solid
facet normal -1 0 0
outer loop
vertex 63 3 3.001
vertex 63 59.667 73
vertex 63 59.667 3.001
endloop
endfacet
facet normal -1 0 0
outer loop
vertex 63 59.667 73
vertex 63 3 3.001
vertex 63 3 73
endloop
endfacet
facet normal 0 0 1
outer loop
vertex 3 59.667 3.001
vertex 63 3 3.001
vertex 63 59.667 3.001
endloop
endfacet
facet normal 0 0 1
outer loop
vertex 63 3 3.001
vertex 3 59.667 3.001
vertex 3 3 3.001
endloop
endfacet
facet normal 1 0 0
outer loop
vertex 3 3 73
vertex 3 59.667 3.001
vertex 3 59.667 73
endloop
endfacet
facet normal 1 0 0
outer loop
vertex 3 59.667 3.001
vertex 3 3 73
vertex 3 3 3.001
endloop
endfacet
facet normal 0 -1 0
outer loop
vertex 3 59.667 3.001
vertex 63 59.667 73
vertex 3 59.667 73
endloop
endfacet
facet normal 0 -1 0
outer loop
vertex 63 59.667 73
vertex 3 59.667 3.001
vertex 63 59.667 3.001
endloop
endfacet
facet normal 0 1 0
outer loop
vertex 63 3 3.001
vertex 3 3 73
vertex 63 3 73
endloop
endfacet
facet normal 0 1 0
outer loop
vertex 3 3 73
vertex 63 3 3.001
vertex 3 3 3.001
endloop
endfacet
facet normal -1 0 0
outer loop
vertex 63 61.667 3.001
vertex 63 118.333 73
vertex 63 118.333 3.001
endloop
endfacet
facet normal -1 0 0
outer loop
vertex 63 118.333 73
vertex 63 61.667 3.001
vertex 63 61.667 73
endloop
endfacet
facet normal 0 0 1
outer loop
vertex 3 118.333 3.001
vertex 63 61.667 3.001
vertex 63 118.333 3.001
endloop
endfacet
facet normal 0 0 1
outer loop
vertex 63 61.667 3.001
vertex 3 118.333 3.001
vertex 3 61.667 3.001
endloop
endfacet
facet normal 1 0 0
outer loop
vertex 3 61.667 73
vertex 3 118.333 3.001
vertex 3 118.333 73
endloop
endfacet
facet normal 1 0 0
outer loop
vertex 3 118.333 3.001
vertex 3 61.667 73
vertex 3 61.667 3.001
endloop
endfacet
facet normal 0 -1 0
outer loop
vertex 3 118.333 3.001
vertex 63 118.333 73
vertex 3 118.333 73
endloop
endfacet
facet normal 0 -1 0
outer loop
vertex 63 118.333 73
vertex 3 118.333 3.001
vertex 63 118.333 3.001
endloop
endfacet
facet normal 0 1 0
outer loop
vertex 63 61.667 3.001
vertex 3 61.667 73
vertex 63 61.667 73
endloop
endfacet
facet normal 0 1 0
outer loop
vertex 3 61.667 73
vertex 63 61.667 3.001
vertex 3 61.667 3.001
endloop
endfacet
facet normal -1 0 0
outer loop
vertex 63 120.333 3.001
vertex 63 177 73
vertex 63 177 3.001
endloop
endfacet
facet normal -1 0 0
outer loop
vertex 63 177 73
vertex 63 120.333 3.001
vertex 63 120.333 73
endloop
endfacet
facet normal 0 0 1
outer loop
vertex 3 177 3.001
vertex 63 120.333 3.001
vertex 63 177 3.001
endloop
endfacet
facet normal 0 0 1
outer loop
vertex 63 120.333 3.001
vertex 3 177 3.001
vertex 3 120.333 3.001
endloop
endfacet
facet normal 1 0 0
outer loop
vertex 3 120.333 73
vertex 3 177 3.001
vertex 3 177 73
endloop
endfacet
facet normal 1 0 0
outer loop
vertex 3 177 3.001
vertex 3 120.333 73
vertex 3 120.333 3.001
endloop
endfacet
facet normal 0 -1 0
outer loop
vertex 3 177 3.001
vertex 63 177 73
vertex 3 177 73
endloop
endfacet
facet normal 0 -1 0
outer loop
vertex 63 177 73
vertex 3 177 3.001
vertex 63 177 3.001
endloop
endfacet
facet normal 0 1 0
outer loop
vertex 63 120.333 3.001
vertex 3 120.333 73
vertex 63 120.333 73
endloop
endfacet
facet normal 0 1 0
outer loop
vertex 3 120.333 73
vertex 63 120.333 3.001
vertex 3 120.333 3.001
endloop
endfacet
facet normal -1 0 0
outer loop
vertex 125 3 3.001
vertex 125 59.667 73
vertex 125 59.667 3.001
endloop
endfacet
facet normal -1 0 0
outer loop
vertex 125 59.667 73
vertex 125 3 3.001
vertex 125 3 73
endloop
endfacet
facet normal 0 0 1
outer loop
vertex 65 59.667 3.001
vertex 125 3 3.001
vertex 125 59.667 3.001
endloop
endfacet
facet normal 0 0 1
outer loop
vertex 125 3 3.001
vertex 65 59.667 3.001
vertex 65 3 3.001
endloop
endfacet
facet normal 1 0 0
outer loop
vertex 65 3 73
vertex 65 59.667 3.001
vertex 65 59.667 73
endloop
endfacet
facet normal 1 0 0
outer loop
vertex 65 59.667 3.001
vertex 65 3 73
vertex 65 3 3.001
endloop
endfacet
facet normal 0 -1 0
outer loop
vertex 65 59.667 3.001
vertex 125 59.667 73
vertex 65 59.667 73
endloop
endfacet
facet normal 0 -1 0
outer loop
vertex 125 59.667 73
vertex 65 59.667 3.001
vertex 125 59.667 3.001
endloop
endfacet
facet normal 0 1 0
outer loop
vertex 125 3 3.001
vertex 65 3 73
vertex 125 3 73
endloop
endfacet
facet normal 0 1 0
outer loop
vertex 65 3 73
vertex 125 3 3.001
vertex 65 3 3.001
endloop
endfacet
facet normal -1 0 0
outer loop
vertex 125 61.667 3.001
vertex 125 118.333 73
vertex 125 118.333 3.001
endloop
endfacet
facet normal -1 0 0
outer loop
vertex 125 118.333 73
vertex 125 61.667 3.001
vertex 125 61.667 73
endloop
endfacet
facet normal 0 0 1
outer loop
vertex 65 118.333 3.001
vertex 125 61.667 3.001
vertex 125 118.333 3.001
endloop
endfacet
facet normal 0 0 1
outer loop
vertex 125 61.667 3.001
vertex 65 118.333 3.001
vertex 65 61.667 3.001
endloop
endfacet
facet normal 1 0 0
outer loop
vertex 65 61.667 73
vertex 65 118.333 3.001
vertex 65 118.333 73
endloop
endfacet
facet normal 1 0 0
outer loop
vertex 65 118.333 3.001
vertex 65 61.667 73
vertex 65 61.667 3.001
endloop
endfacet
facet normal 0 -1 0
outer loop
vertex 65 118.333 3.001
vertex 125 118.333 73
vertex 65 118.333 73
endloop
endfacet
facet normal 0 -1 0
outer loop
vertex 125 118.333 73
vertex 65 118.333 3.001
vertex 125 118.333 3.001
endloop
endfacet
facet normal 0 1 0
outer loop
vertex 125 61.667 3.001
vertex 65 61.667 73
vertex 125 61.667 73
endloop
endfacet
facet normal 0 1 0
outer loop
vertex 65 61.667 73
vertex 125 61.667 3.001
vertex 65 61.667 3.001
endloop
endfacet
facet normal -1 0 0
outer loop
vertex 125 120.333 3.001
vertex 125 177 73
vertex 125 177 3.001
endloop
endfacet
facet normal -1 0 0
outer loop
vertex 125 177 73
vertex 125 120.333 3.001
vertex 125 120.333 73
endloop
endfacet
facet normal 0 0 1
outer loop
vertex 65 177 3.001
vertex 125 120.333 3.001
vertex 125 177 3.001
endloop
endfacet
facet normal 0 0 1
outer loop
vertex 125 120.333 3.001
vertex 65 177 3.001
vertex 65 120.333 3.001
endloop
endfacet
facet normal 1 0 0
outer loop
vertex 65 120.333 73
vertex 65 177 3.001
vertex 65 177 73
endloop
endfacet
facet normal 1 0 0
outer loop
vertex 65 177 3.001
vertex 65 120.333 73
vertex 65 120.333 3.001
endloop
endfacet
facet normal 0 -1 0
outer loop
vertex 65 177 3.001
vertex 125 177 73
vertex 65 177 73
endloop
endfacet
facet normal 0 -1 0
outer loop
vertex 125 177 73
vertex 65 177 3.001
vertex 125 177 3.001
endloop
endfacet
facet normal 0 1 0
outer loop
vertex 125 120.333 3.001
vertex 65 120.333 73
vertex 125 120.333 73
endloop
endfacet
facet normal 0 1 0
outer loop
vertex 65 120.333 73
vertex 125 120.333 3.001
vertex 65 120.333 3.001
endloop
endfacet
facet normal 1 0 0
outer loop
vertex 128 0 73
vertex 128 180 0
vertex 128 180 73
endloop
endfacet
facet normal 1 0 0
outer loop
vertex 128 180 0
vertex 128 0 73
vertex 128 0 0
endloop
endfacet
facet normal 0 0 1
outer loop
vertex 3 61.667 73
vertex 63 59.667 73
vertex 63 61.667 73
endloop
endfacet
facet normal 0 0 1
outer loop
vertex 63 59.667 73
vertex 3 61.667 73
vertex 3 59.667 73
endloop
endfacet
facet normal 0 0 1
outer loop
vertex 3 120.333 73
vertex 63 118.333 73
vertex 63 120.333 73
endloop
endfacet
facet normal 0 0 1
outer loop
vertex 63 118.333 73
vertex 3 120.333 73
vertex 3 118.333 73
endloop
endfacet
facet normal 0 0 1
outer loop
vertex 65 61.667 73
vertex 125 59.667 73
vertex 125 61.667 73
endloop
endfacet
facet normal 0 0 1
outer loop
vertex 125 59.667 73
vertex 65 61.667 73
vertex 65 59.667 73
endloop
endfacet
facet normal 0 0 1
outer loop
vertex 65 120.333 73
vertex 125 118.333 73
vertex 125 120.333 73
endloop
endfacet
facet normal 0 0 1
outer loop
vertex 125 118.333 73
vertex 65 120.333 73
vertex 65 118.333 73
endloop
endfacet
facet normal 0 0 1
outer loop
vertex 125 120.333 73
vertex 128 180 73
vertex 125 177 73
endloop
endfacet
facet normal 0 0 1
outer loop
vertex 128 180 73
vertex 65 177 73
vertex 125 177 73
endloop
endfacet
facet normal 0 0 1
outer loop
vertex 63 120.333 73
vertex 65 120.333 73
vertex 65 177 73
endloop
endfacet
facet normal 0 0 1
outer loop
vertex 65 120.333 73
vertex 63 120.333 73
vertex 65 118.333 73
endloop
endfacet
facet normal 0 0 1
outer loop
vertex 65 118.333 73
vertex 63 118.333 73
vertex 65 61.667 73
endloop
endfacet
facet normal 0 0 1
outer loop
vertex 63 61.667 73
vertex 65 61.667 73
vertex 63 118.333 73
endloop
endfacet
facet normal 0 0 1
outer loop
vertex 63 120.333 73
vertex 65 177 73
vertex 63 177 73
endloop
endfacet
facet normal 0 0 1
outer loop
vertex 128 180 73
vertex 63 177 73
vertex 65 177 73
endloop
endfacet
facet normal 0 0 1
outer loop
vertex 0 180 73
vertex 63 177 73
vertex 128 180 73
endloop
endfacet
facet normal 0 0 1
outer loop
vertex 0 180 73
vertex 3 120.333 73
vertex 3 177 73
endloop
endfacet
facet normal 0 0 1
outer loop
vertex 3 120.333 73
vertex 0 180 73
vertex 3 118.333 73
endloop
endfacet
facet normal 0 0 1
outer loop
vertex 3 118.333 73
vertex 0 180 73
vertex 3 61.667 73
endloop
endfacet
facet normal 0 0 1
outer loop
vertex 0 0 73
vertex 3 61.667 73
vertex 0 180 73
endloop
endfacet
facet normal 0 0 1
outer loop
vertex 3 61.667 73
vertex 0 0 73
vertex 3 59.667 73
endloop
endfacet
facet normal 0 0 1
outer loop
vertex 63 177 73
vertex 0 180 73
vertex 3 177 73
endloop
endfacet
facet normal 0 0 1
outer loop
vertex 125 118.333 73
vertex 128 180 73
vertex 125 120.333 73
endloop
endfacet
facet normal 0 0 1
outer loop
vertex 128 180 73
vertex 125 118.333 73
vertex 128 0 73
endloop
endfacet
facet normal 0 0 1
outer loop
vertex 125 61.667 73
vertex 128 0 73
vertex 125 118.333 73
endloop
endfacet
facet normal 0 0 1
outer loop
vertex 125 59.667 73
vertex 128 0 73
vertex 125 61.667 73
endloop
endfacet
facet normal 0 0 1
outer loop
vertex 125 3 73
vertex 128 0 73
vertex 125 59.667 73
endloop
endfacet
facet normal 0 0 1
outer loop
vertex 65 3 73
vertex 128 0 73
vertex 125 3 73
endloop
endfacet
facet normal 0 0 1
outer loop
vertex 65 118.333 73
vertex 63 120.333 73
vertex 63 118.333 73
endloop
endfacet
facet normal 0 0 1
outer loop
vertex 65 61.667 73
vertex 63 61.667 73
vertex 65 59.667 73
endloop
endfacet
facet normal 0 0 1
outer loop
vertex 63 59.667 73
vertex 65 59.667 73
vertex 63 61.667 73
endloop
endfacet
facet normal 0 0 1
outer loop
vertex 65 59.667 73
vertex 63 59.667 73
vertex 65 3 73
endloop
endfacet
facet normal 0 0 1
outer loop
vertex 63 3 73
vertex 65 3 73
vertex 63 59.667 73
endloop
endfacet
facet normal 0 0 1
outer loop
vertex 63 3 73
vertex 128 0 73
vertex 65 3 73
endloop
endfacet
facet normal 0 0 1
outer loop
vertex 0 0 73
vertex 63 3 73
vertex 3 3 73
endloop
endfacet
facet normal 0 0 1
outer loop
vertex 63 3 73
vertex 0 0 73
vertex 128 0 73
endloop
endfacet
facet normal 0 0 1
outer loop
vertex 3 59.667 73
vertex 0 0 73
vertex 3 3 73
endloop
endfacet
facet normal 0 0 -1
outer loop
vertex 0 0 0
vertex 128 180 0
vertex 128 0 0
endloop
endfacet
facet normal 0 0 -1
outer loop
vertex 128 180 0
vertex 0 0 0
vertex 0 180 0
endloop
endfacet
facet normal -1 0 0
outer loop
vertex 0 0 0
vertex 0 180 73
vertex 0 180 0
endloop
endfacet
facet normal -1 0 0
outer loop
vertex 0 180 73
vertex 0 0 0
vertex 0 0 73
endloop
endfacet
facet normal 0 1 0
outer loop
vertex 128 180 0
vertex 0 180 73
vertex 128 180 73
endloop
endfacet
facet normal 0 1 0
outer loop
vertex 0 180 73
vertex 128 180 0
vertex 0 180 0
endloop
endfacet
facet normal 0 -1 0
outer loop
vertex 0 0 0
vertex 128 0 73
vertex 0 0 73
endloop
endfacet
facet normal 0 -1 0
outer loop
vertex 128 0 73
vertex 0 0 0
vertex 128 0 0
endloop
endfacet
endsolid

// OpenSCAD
tea_bag_width = 57;
tea_bag_height = 65;

bags_hollow_width = tea_bag_width + 3;
bags_hollow_height = tea_bag_height + 5;

border_wall = 3;
inner_wall = 2;

margin = 0.001;

container_depth = 180;
number_of_depth_hollows = 3;
container_width = bags_hollow_width * 2 + border_wall * 2 + inner_wall;
container_height = bags_hollow_height + border_wall;

difference() {
    cube([container_width, container_depth, container_height]);
    
    bags_hollow_depth = (container_depth - border_wall * 2 - inner_wall * (number_of_depth_hollows - 1)) / number_of_depth_hollows;
    
    echo(bags_hollow_depth);
    
    for(xValue = [1:2]) {
        for(yValue = [1:number_of_depth_hollows]) {
            translate(
                [
                    border_wall + (xValue - 1) * inner_wall + (xValue - 1) * bags_hollow_width,
                    border_wall + (yValue - 1) * inner_wall + (yValue - 1) * bags_hollow_depth,
                    border_wall + margin
                ]
            )
            cube([bags_hollow_width, bags_hollow_depth, bags_hollow_height]);
        }
    }
}
